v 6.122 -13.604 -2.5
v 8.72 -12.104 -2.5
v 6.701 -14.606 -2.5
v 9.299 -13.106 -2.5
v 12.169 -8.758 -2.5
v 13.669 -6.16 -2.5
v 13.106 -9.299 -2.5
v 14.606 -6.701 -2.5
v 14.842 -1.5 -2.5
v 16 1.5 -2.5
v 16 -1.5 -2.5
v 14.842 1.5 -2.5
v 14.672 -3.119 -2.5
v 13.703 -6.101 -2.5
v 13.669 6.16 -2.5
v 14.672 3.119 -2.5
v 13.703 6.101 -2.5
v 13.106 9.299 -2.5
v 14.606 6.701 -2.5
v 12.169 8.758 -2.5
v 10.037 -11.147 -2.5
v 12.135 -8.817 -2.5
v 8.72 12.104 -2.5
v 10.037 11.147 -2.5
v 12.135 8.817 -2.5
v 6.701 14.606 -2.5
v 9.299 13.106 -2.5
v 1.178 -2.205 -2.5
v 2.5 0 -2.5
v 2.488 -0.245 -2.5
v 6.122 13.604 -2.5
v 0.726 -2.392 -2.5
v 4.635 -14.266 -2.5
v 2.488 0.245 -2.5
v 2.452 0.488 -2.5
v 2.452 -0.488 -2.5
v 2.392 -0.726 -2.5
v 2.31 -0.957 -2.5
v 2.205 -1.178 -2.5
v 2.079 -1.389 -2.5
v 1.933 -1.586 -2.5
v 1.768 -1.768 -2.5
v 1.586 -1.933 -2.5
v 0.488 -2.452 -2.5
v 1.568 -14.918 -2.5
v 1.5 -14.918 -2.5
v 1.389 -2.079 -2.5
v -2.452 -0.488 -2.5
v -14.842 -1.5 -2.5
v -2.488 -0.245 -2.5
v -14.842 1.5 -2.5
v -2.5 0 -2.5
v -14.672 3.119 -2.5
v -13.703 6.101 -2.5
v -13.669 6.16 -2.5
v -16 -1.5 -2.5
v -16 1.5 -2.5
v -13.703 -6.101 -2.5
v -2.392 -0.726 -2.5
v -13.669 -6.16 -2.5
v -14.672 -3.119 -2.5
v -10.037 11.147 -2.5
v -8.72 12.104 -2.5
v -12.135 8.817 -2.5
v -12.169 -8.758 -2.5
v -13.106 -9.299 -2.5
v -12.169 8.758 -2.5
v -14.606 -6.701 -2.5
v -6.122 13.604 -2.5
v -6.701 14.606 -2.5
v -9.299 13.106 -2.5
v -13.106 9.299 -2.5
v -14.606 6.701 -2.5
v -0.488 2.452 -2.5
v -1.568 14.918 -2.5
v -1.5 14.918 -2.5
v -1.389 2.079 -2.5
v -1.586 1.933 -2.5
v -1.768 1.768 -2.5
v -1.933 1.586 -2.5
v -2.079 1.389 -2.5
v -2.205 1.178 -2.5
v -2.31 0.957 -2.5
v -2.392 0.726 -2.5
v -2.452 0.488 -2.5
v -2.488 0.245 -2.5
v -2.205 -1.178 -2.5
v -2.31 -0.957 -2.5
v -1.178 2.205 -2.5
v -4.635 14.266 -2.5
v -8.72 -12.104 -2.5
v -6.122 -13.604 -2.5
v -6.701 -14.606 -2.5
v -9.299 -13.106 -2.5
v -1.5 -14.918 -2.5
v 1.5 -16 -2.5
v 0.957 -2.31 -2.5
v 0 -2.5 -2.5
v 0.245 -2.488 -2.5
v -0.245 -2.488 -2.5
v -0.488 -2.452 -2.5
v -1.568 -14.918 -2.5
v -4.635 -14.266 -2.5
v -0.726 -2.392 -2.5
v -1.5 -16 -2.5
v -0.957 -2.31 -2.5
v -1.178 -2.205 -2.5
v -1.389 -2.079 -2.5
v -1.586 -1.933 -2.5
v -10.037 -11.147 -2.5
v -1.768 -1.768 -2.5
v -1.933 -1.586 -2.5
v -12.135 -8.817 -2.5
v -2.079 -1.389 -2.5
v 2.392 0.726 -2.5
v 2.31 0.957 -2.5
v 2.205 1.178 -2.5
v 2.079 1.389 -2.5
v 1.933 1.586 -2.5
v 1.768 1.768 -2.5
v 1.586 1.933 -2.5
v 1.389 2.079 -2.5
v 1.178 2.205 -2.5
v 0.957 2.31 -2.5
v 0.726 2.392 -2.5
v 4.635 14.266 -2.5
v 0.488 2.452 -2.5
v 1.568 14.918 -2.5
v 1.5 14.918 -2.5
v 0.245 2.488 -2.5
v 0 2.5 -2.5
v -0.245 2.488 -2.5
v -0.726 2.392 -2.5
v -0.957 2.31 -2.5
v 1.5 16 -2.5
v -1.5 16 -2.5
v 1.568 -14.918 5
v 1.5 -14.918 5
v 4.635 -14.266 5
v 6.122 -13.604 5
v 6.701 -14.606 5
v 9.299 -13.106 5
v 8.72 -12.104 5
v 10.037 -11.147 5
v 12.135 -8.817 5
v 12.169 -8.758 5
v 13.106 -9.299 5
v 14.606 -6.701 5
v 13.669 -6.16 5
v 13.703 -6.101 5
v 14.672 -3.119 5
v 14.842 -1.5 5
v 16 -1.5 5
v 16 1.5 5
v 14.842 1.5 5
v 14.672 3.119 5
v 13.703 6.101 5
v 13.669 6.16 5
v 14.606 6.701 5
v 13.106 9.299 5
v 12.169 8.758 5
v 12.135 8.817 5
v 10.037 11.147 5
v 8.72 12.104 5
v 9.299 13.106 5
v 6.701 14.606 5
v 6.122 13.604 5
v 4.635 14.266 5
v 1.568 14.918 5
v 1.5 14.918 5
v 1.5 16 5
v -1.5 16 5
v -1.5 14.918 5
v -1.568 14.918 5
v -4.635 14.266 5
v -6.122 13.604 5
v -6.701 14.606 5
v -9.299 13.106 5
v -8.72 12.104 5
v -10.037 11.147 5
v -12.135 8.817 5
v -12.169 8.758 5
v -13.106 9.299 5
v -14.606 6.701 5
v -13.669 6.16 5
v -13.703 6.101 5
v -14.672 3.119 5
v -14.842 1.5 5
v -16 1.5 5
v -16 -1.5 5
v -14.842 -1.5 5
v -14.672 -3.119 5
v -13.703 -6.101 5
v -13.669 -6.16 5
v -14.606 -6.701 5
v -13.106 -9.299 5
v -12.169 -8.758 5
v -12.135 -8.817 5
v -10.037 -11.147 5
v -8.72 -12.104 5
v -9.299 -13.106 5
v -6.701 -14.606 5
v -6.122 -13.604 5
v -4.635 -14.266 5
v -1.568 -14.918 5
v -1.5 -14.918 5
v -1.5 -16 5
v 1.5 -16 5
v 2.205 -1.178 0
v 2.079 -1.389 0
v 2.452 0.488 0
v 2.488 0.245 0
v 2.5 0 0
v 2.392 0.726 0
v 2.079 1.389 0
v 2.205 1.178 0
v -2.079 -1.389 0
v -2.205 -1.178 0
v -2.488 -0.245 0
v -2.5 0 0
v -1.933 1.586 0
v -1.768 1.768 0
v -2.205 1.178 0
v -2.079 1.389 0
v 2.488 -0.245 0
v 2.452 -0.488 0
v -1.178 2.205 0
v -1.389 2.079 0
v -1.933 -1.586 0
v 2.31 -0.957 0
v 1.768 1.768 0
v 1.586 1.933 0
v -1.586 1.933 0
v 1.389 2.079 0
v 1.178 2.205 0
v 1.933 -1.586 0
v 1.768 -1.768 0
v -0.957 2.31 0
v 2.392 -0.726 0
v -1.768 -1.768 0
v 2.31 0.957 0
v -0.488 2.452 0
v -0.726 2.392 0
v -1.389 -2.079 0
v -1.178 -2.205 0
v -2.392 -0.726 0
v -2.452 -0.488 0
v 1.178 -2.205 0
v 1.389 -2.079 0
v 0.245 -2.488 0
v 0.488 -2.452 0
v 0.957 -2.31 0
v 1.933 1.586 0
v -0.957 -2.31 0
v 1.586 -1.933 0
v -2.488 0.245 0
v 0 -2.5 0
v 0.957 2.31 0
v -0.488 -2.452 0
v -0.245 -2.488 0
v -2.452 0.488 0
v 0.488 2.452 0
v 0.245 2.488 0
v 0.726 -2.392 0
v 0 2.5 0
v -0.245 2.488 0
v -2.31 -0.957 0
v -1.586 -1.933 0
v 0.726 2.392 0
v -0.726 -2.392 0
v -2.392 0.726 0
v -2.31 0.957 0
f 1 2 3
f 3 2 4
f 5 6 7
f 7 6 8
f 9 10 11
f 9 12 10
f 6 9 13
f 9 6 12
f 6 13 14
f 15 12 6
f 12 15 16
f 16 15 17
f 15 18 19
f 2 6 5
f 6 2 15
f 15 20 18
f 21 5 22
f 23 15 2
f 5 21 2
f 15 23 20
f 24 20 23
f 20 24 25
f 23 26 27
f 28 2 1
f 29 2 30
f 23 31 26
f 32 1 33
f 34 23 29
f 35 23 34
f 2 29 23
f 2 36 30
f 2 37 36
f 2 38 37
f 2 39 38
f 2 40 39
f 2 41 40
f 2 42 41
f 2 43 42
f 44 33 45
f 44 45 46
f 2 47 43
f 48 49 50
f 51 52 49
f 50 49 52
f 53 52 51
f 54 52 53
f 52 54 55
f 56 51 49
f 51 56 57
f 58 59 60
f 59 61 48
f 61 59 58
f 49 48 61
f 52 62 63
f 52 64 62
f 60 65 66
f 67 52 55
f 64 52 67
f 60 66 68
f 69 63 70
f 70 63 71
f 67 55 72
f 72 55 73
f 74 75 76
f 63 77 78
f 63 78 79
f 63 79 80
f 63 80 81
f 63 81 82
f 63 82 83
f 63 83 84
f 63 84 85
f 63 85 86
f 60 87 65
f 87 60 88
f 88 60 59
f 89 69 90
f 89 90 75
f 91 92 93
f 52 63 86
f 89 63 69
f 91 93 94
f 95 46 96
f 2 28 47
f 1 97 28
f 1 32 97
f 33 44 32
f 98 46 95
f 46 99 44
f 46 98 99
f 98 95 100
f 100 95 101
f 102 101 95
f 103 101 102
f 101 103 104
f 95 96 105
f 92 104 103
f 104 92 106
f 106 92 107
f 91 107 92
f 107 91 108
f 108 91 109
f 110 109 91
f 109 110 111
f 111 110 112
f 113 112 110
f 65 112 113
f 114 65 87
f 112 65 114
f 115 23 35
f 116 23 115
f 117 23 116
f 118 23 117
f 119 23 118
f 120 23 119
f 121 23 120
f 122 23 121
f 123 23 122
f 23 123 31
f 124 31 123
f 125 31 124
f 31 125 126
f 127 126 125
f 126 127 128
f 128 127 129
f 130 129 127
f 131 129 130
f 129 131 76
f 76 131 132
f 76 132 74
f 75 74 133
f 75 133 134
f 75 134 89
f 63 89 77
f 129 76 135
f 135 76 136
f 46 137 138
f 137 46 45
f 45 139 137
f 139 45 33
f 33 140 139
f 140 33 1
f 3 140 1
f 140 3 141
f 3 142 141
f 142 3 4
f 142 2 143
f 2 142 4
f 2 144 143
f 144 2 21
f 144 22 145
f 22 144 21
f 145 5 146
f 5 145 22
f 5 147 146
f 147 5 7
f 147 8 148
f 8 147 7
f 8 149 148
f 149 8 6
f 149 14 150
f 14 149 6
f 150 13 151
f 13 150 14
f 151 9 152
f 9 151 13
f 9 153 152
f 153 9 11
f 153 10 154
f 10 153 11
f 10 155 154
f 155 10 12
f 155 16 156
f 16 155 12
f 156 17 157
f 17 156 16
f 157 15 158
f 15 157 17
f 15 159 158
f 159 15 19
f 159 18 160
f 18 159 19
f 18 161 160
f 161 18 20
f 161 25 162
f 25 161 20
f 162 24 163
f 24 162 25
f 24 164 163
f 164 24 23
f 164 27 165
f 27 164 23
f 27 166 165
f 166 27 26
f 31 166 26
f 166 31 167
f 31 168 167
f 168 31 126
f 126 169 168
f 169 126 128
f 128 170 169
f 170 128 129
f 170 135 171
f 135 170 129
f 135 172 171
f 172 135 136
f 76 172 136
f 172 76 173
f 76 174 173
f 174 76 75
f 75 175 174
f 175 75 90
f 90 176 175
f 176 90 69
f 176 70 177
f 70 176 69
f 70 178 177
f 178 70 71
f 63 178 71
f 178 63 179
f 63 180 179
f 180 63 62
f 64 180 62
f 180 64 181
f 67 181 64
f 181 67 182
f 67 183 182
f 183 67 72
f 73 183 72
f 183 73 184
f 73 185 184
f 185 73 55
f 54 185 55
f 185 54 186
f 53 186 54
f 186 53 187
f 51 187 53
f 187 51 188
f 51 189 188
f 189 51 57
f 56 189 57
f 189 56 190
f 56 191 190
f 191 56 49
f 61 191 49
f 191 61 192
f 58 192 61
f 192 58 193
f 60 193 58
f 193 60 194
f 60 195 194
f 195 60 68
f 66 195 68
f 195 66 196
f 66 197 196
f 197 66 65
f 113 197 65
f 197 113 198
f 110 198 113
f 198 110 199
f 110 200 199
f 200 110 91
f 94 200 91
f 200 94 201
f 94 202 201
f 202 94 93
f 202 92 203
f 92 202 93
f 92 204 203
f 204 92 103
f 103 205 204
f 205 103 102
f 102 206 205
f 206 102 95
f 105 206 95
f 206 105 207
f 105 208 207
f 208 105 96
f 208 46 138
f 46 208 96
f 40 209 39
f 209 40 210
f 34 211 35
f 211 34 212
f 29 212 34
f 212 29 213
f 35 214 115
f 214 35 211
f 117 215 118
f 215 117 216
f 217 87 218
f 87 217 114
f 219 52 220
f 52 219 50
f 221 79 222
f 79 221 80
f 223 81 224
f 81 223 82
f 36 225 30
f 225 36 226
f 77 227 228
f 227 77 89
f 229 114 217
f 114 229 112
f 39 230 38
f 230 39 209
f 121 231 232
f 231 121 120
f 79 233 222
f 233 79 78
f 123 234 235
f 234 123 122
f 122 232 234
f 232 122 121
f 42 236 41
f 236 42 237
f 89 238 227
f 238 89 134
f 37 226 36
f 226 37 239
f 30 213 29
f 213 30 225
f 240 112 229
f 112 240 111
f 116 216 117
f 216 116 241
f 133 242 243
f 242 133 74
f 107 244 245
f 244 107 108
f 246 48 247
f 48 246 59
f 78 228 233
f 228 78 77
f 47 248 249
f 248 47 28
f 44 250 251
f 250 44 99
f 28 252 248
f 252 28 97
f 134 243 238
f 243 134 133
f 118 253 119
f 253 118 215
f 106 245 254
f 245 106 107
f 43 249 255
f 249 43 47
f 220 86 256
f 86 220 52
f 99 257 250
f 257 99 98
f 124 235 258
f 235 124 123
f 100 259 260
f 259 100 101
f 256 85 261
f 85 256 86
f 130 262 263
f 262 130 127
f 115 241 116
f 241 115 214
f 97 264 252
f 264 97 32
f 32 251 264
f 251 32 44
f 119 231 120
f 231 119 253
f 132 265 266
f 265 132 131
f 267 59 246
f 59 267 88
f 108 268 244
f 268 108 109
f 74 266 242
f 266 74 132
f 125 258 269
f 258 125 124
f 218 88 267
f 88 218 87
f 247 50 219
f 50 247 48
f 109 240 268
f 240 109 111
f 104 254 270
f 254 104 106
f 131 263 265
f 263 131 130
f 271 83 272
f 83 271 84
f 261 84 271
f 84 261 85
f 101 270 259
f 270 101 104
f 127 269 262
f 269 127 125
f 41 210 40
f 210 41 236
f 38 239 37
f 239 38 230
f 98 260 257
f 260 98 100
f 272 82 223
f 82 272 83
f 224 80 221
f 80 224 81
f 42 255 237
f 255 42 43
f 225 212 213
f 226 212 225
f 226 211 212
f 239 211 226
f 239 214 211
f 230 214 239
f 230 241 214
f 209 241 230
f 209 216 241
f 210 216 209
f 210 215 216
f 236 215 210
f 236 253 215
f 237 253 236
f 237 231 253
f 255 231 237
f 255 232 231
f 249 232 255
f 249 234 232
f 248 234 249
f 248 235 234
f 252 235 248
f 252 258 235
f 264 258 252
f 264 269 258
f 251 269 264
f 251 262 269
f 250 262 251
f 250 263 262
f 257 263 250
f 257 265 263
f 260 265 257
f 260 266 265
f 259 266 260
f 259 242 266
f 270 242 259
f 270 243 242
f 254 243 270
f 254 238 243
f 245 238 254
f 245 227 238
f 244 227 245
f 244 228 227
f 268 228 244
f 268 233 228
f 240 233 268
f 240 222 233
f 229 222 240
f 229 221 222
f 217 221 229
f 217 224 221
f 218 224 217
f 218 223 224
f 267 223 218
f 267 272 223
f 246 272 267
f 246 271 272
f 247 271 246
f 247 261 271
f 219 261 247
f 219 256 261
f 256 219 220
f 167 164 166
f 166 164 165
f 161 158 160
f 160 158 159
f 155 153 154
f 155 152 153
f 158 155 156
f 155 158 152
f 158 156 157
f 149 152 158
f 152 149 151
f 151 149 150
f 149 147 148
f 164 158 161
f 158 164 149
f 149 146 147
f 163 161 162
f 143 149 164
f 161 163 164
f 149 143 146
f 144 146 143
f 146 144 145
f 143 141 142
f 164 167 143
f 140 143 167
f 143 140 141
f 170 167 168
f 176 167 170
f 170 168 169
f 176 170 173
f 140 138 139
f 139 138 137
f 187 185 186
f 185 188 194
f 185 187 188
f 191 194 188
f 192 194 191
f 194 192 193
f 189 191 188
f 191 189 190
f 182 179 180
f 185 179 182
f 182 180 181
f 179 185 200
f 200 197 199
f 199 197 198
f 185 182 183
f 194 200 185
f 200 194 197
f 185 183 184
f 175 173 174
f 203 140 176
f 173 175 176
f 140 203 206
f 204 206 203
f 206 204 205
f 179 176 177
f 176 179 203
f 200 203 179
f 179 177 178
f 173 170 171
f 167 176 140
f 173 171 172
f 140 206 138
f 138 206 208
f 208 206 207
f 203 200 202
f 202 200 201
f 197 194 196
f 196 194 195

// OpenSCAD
// Dimensions in mm
n = 12; // Number of teeth
r = 15; // Outer radius of the gear
tooth_h = 3; // Height of the teeth
gear_h = 5; // Height of the gear
tw = 2; // Width of the teeth
bore_r = 2.5; // Radius of the center bore
bore_h = 5; // Height of the center bore

// 2D tooth profile cross-section
module tooth_profile(r, tooth_h) {
  circle(r=r);
  for (i = [0:n-1]) {
    rotate(i * 360/n) translate([r, 0])
      polygon([[-tw/2,-tooth_h/2],[tw/2,-tooth_h/2],[tw/2,tooth_h/2],[-tw/2,tooth_h/2]]);
  }
}

// Extrude to full 3D gear
linear_extrude(height=gear_h) tooth_profile(r, tooth_h);

// Center the gear and add the bore
translate([0, 0, -bore_h/2]) {
  difference() {
    // Gear body
    linear_extrude(height=gear_h) tooth_profile(r, tooth_h);
    // Center bore
    cylinder(r=bore_r, h=bore_h, $fn=64);
  }
}
